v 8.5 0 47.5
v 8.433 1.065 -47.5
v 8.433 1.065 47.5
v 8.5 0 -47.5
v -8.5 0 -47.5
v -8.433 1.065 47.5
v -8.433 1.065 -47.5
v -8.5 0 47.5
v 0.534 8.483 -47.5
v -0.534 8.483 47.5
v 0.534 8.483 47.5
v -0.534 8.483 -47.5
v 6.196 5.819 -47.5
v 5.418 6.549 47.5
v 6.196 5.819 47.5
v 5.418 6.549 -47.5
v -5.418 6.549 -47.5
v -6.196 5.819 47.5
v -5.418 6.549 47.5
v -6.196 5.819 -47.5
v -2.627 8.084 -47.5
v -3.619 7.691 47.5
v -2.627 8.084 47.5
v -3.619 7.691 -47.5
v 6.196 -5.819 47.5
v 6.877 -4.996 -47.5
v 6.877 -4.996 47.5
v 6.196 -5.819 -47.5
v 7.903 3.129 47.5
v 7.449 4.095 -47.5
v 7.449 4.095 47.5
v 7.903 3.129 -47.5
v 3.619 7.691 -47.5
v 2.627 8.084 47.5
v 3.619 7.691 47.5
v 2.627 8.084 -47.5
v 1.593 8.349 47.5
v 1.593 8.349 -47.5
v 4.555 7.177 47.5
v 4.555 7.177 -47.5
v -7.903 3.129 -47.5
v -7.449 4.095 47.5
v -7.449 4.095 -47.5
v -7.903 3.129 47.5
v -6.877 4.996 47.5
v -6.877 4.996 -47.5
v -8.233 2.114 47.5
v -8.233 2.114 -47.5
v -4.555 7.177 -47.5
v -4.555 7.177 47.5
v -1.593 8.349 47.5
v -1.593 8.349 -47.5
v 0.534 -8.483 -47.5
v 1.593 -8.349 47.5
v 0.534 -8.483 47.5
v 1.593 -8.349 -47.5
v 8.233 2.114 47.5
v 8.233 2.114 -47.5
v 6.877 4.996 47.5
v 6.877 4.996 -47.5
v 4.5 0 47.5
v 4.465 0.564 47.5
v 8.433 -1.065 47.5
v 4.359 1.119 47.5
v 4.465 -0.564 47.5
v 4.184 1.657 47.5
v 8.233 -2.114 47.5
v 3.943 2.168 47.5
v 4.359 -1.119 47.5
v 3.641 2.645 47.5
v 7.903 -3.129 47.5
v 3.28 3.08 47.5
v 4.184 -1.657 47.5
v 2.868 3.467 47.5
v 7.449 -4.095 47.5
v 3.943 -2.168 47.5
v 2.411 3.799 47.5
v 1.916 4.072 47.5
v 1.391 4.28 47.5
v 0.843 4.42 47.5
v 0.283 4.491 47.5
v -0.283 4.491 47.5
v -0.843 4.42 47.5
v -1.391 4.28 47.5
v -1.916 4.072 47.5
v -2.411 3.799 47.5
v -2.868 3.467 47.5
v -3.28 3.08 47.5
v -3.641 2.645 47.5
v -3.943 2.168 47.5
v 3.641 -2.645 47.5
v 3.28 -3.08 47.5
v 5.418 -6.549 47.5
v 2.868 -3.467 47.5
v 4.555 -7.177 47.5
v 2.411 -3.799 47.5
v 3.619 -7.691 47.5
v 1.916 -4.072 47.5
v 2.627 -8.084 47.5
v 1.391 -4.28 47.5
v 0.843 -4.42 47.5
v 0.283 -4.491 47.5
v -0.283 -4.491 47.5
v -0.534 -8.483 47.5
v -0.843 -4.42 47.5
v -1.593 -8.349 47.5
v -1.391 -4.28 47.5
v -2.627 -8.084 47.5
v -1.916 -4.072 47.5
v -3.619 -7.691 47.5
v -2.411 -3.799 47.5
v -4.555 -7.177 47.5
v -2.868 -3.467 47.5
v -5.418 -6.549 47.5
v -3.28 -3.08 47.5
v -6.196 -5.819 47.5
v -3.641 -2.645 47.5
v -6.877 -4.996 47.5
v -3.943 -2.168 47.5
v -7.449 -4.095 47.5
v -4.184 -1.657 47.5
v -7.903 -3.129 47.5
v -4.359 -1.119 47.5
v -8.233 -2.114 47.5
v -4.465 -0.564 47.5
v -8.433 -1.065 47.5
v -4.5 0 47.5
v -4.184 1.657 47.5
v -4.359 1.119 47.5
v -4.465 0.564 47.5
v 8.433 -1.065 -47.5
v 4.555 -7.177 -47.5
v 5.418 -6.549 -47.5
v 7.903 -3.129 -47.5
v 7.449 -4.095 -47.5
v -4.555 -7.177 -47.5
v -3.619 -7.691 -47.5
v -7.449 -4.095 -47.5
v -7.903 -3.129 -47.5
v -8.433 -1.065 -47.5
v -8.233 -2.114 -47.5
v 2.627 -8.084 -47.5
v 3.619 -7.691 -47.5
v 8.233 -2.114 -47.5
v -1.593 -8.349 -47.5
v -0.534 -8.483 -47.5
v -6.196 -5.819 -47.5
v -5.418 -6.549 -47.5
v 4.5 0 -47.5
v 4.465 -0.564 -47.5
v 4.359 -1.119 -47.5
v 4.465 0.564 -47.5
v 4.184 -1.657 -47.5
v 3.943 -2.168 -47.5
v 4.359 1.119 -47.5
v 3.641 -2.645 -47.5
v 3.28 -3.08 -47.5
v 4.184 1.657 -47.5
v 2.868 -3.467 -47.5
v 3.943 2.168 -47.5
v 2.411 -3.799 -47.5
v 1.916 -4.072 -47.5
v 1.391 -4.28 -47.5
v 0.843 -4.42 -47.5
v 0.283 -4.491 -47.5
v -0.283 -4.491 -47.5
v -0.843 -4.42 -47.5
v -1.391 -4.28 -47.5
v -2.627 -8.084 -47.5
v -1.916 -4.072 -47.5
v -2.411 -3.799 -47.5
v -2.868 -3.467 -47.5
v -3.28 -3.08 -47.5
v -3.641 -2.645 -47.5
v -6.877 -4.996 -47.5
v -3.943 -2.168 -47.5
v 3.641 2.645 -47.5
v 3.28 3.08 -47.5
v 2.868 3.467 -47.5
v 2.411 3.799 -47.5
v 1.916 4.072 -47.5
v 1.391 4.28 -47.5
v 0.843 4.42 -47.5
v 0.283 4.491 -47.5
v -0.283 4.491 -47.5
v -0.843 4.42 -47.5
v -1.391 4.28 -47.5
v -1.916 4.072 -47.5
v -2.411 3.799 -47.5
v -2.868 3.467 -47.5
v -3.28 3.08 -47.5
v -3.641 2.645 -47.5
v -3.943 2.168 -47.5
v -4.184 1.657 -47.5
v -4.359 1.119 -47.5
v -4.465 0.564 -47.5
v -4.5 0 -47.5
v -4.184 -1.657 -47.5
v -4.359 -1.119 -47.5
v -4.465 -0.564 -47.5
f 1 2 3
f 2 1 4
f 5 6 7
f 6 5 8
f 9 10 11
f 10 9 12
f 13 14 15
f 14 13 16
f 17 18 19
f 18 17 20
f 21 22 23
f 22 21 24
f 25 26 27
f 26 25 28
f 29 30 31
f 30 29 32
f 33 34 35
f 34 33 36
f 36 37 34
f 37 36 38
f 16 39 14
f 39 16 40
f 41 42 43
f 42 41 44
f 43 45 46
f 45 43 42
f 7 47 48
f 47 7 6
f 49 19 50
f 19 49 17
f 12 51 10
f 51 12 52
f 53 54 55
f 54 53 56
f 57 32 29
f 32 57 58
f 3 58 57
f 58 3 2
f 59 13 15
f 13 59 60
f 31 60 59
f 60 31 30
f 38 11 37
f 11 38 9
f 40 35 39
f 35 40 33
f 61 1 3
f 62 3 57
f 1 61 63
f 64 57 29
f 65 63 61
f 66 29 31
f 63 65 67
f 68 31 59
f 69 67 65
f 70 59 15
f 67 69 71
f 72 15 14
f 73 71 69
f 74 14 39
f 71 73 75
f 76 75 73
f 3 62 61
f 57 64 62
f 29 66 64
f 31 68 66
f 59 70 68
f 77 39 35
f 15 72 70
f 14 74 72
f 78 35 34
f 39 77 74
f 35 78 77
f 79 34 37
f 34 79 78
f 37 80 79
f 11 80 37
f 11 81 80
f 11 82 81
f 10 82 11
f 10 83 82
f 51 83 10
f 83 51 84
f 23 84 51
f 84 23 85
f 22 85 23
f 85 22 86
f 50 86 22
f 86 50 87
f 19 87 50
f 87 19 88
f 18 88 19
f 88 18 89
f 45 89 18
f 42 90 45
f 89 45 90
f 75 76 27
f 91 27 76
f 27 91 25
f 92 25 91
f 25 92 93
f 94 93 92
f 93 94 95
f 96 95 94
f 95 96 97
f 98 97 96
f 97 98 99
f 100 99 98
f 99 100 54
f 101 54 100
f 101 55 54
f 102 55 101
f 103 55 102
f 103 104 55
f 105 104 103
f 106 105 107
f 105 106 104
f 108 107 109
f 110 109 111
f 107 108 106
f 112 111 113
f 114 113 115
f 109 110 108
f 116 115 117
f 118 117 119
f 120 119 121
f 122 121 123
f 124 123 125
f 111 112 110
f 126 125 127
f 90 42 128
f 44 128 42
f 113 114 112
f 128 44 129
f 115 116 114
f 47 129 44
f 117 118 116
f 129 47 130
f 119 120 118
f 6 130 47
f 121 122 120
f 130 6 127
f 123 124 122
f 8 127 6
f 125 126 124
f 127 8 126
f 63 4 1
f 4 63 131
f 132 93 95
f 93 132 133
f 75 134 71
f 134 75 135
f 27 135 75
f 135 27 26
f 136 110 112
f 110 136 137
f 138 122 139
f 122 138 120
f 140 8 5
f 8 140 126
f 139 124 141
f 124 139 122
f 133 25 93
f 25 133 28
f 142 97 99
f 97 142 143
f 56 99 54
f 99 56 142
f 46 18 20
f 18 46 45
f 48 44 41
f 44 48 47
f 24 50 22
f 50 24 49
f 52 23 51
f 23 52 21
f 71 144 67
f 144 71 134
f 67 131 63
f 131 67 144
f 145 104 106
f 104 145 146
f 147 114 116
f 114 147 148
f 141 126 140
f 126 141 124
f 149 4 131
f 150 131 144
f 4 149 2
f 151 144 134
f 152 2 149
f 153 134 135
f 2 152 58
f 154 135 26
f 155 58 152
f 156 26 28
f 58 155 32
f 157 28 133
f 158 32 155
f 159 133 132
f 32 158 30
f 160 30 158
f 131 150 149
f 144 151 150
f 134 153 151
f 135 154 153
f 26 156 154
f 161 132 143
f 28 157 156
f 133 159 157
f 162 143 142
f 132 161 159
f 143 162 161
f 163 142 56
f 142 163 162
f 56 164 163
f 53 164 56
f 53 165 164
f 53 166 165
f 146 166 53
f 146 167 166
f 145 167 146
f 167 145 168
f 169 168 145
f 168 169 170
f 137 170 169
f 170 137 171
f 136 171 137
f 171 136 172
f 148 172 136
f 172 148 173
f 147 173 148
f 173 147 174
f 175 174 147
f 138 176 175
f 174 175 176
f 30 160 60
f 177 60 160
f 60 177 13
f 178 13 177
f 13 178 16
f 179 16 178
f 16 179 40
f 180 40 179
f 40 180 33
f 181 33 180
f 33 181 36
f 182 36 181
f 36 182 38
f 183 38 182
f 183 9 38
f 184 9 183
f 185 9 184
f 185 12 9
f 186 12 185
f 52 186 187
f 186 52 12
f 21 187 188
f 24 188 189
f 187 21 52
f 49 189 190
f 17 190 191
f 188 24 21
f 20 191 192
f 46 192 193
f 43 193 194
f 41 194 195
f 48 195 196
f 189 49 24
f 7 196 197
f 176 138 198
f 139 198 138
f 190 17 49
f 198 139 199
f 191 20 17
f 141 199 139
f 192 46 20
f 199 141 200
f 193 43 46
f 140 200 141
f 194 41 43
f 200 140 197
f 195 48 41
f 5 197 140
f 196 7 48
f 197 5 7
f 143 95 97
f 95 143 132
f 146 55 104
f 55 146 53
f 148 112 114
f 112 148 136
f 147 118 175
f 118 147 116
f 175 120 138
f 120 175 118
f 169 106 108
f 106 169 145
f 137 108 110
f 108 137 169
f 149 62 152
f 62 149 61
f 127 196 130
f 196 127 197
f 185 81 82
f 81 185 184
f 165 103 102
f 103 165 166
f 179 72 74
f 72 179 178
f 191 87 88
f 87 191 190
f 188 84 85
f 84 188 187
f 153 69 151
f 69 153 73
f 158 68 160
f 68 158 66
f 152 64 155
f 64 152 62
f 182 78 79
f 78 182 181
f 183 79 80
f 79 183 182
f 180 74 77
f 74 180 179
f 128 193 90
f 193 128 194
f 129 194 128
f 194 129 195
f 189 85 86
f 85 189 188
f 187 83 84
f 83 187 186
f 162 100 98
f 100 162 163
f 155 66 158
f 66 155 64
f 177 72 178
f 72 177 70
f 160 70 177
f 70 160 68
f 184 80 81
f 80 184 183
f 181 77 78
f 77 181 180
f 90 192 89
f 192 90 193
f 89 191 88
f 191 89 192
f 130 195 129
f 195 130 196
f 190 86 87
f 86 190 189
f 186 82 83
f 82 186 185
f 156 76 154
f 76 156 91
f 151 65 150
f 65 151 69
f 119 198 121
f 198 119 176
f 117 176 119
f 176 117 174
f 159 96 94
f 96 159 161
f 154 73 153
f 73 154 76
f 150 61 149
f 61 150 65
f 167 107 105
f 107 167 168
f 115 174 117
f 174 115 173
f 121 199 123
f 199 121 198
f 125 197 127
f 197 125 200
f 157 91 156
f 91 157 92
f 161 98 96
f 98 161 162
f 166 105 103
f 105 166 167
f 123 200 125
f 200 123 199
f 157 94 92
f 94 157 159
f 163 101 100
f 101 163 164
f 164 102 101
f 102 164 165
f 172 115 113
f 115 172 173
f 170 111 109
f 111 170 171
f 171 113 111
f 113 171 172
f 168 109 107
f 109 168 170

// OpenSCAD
$fn = 50;


difference() {
	union() {
		translate(v = [0, 0, -47.5000000000]) {
			cylinder(h = 95, r = 8.5000000000);
		}
	}
	union() {
		translate(v = [0, 0, -100.0000000000]) {
			cylinder(h = 200, r = 4.5000000000);
		}
	}
}
